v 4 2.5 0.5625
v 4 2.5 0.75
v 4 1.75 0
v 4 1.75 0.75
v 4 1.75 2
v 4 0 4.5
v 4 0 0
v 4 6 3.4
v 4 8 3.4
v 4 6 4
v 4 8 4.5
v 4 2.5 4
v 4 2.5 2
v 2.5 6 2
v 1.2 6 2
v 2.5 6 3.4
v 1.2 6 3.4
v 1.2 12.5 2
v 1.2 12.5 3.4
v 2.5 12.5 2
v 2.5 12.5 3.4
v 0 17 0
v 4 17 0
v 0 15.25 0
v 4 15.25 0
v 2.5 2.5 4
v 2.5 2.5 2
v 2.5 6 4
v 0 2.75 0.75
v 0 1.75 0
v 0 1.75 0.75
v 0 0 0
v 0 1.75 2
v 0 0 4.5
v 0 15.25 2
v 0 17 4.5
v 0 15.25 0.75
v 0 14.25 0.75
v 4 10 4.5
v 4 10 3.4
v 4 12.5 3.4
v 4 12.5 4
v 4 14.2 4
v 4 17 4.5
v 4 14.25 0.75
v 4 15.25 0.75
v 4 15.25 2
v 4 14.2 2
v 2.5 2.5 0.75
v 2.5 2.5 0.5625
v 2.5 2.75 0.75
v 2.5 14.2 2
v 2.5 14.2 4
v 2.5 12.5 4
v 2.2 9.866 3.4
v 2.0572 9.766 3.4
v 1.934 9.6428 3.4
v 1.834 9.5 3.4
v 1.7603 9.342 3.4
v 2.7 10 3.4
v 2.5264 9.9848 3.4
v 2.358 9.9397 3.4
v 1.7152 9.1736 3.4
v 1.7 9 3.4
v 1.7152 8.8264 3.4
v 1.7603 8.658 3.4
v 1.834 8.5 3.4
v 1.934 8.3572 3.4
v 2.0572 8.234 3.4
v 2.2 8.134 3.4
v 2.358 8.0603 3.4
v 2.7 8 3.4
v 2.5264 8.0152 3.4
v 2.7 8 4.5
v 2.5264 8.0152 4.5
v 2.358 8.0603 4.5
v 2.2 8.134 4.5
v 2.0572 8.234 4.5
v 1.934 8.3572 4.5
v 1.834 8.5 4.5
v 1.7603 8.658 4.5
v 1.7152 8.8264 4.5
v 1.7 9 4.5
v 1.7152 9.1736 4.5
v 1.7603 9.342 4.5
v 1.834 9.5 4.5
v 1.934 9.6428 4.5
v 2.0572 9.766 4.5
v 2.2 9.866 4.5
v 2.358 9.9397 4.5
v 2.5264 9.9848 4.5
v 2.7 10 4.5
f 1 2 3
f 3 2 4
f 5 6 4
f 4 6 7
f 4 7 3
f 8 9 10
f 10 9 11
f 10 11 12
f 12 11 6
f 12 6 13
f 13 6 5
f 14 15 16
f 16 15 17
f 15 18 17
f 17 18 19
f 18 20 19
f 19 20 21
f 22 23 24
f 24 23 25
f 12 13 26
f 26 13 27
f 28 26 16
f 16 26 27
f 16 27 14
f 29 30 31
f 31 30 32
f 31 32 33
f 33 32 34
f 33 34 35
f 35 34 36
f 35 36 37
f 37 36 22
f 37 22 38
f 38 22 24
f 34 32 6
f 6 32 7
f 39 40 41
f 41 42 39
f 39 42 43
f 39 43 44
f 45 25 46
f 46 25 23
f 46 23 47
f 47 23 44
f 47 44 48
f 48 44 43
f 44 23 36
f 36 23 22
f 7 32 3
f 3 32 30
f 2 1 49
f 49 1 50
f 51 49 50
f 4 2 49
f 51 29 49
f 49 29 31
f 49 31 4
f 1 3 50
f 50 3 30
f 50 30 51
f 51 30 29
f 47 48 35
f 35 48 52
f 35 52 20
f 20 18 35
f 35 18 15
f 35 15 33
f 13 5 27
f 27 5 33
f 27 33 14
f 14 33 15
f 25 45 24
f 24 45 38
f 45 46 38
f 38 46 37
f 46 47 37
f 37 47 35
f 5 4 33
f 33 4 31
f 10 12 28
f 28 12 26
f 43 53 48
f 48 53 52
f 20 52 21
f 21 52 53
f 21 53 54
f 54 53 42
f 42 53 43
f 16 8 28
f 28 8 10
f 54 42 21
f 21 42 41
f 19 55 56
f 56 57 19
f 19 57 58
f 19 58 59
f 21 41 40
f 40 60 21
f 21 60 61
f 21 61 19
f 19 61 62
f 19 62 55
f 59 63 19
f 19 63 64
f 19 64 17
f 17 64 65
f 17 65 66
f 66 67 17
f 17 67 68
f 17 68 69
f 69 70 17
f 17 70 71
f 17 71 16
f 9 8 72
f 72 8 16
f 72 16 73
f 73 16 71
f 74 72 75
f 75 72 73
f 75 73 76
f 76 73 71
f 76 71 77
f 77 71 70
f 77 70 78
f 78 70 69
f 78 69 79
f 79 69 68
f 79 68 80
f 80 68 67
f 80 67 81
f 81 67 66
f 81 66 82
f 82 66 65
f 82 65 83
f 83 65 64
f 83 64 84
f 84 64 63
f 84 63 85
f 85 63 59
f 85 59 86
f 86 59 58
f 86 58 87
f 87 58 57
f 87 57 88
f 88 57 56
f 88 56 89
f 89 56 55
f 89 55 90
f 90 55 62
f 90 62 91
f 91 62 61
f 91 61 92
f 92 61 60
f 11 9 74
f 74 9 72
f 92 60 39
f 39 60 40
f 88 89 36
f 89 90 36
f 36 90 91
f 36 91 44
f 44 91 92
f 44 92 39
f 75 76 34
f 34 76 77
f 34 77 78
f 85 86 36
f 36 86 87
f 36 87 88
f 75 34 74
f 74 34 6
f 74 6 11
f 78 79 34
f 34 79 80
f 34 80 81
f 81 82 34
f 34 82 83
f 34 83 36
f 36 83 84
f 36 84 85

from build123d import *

# Parameters (mm, degrees)
SKETCH1_W           = 4
SKETCH1_H           = 17
BOSS_EXTRUDE1_DEPTH = 6
SKETCH2_W           = 2.8
SKETCH2_H           = 6.5
SKETCH2_W_2         = 1.5
SKETCH2_H_2         = 2.75
CUT_EXTRUDE1_DEPTH  = 19.466185313
CUT_EXTRUDE2_DEPTH  = 19.466185313
SKETCH4_W           = 2
SKETCH4_H           = 2.75
BOSS_EXTRUDE2_DEPTH = 2
SKETCH6_W           = 1.5
SKETCH6_H           = 1.7
SKETCH6_H_2         = 0.75
CUT_EXTRUDE3_DEPTH  = 2
BOSS_EXTRUDE3_REACH = 20.244
SKETCH7_W           = 2.6
SKETCH7_H           = 6.5
CUT_EXTRUDE4_DEPTH  = 10
SKETCH9_W           = 1.5
SKETCH9_H           = 17
CUT_EXTRUDE5_DEPTH  = 19.466185313


with BuildPart() as part:
    # Sketch1 → Boss-Extrude1 (new body)
    with BuildSketch(Plane.XY):
        with Locations((2, 8.5)):
            Rectangle(SKETCH1_W, SKETCH1_H)
    extrude(amount=BOSS_EXTRUDE1_DEPTH)

    # Sketch2 → Cut-Extrude1 (cut, through all)
    with BuildSketch(Plane.XY.offset(6)):
        with Locations((2.6, 9.25)):
            Rectangle(SKETCH2_W, SKETCH2_H)
        with Locations((3.25, 3.875)):
            Rectangle(SKETCH2_W_2, SKETCH2_H_2)
    extrude(amount=-CUT_EXTRUDE1_DEPTH, mode=Mode.SUBTRACT)

    # Sketch3 → Cut-Extrude2 (cut, through all)
    with BuildSketch(Plane.ZY):
        Polygon((0, 15.25), (0.75, 14.25), (0.75, 15.25), (2, 15.25), (2, 1.75), (0.75, 1.75), (0.75, 2.75), (0, 1.75), align=None)
    extrude(amount=-CUT_EXTRUDE2_DEPTH, mode=Mode.SUBTRACT)

    # Sketch4 → Boss-Extrude2 (add)
    with BuildSketch(Plane(origin=(4, 0, 0), x_dir=(0, 0, -1), z_dir=(1, 0, 0))):
        with Locations((-5, 3.875)):
            Rectangle(SKETCH4_W, SKETCH4_H)
    extrude(amount=-BOSS_EXTRUDE2_DEPTH)

    # Sketch6 → Cut-Extrude3 (cut)
    with BuildSketch(Plane(origin=(0, 0, 2), x_dir=(-1, 0, 0), z_dir=(0, 0, -1))):
        with Locations((-3.25, 13.35)):
            Rectangle(SKETCH6_W, SKETCH6_H)
        with Locations((-3.25, 5.625)):
            Rectangle(SKETCH6_W, SKETCH6_H_2)
    extrude(amount=-CUT_EXTRUDE3_DEPTH, mode=Mode.SUBTRACT)

    # Boss-Extrude3: up to this face of the body (flat: up to its plane)
    boss_extrude3_end = Plane(part.part.faces().sort_by_distance((4, 15.271515562, 3.544654939))[0])
    # Sketch7 → Boss-Extrude3 (add, up to the picked face)
    with BuildSketch(Plane(origin=(1.2, 0, 0), x_dir=(0, 0, -1), z_dir=(1, 0, 0)), mode=Mode.PRIVATE) as boss_extrude3_sk1:
        with Locations((-4.7, 9.25)):
            Rectangle(SKETCH7_W, SKETCH7_H)
    boss_extrude3_tool1 = split(extrude(boss_extrude3_sk1.sketch, amount=BOSS_EXTRUDE3_REACH, mode=Mode.PRIVATE), bisect_by=boss_extrude3_end, keep=Keep.BOTH, mode=Mode.PRIVATE)
    add(boss_extrude3_tool1.solids().sort_by(Axis((1.2, 9.25, 4.7), (1, 0, 0)))[0])

    # Sketch8 → Cut-Extrude4 (cut)
    with BuildSketch(Plane(origin=(0, 0, 3.4), x_dir=(-1, 0, 0), z_dir=(0, 0, -1))):
        with BuildLine():
            Line((-2.7, 10), (-4, 10))
            Line((-4, 10), (-4, 8))
            Line((-4, 8), (-2.7, 8))
            ThreePointArc((-2.7, 8), (-1.7, 9), (-2.7, 10))
        make_face()
    extrude(amount=-CUT_EXTRUDE4_DEPTH, mode=Mode.SUBTRACT)

    # Sketch9 → Cut-Extrude5 (cut, through all)
    with BuildSketch(Plane(origin=(4, 0, 0), x_dir=(0, 0, -1), z_dir=(1, 0, 0))):
        with Locations((-5.25, 8.5)):
            Rectangle(SKETCH9_W, SKETCH9_H)
    extrude(amount=-CUT_EXTRUDE5_DEPTH, mode=Mode.SUBTRACT)


solid = part.part
